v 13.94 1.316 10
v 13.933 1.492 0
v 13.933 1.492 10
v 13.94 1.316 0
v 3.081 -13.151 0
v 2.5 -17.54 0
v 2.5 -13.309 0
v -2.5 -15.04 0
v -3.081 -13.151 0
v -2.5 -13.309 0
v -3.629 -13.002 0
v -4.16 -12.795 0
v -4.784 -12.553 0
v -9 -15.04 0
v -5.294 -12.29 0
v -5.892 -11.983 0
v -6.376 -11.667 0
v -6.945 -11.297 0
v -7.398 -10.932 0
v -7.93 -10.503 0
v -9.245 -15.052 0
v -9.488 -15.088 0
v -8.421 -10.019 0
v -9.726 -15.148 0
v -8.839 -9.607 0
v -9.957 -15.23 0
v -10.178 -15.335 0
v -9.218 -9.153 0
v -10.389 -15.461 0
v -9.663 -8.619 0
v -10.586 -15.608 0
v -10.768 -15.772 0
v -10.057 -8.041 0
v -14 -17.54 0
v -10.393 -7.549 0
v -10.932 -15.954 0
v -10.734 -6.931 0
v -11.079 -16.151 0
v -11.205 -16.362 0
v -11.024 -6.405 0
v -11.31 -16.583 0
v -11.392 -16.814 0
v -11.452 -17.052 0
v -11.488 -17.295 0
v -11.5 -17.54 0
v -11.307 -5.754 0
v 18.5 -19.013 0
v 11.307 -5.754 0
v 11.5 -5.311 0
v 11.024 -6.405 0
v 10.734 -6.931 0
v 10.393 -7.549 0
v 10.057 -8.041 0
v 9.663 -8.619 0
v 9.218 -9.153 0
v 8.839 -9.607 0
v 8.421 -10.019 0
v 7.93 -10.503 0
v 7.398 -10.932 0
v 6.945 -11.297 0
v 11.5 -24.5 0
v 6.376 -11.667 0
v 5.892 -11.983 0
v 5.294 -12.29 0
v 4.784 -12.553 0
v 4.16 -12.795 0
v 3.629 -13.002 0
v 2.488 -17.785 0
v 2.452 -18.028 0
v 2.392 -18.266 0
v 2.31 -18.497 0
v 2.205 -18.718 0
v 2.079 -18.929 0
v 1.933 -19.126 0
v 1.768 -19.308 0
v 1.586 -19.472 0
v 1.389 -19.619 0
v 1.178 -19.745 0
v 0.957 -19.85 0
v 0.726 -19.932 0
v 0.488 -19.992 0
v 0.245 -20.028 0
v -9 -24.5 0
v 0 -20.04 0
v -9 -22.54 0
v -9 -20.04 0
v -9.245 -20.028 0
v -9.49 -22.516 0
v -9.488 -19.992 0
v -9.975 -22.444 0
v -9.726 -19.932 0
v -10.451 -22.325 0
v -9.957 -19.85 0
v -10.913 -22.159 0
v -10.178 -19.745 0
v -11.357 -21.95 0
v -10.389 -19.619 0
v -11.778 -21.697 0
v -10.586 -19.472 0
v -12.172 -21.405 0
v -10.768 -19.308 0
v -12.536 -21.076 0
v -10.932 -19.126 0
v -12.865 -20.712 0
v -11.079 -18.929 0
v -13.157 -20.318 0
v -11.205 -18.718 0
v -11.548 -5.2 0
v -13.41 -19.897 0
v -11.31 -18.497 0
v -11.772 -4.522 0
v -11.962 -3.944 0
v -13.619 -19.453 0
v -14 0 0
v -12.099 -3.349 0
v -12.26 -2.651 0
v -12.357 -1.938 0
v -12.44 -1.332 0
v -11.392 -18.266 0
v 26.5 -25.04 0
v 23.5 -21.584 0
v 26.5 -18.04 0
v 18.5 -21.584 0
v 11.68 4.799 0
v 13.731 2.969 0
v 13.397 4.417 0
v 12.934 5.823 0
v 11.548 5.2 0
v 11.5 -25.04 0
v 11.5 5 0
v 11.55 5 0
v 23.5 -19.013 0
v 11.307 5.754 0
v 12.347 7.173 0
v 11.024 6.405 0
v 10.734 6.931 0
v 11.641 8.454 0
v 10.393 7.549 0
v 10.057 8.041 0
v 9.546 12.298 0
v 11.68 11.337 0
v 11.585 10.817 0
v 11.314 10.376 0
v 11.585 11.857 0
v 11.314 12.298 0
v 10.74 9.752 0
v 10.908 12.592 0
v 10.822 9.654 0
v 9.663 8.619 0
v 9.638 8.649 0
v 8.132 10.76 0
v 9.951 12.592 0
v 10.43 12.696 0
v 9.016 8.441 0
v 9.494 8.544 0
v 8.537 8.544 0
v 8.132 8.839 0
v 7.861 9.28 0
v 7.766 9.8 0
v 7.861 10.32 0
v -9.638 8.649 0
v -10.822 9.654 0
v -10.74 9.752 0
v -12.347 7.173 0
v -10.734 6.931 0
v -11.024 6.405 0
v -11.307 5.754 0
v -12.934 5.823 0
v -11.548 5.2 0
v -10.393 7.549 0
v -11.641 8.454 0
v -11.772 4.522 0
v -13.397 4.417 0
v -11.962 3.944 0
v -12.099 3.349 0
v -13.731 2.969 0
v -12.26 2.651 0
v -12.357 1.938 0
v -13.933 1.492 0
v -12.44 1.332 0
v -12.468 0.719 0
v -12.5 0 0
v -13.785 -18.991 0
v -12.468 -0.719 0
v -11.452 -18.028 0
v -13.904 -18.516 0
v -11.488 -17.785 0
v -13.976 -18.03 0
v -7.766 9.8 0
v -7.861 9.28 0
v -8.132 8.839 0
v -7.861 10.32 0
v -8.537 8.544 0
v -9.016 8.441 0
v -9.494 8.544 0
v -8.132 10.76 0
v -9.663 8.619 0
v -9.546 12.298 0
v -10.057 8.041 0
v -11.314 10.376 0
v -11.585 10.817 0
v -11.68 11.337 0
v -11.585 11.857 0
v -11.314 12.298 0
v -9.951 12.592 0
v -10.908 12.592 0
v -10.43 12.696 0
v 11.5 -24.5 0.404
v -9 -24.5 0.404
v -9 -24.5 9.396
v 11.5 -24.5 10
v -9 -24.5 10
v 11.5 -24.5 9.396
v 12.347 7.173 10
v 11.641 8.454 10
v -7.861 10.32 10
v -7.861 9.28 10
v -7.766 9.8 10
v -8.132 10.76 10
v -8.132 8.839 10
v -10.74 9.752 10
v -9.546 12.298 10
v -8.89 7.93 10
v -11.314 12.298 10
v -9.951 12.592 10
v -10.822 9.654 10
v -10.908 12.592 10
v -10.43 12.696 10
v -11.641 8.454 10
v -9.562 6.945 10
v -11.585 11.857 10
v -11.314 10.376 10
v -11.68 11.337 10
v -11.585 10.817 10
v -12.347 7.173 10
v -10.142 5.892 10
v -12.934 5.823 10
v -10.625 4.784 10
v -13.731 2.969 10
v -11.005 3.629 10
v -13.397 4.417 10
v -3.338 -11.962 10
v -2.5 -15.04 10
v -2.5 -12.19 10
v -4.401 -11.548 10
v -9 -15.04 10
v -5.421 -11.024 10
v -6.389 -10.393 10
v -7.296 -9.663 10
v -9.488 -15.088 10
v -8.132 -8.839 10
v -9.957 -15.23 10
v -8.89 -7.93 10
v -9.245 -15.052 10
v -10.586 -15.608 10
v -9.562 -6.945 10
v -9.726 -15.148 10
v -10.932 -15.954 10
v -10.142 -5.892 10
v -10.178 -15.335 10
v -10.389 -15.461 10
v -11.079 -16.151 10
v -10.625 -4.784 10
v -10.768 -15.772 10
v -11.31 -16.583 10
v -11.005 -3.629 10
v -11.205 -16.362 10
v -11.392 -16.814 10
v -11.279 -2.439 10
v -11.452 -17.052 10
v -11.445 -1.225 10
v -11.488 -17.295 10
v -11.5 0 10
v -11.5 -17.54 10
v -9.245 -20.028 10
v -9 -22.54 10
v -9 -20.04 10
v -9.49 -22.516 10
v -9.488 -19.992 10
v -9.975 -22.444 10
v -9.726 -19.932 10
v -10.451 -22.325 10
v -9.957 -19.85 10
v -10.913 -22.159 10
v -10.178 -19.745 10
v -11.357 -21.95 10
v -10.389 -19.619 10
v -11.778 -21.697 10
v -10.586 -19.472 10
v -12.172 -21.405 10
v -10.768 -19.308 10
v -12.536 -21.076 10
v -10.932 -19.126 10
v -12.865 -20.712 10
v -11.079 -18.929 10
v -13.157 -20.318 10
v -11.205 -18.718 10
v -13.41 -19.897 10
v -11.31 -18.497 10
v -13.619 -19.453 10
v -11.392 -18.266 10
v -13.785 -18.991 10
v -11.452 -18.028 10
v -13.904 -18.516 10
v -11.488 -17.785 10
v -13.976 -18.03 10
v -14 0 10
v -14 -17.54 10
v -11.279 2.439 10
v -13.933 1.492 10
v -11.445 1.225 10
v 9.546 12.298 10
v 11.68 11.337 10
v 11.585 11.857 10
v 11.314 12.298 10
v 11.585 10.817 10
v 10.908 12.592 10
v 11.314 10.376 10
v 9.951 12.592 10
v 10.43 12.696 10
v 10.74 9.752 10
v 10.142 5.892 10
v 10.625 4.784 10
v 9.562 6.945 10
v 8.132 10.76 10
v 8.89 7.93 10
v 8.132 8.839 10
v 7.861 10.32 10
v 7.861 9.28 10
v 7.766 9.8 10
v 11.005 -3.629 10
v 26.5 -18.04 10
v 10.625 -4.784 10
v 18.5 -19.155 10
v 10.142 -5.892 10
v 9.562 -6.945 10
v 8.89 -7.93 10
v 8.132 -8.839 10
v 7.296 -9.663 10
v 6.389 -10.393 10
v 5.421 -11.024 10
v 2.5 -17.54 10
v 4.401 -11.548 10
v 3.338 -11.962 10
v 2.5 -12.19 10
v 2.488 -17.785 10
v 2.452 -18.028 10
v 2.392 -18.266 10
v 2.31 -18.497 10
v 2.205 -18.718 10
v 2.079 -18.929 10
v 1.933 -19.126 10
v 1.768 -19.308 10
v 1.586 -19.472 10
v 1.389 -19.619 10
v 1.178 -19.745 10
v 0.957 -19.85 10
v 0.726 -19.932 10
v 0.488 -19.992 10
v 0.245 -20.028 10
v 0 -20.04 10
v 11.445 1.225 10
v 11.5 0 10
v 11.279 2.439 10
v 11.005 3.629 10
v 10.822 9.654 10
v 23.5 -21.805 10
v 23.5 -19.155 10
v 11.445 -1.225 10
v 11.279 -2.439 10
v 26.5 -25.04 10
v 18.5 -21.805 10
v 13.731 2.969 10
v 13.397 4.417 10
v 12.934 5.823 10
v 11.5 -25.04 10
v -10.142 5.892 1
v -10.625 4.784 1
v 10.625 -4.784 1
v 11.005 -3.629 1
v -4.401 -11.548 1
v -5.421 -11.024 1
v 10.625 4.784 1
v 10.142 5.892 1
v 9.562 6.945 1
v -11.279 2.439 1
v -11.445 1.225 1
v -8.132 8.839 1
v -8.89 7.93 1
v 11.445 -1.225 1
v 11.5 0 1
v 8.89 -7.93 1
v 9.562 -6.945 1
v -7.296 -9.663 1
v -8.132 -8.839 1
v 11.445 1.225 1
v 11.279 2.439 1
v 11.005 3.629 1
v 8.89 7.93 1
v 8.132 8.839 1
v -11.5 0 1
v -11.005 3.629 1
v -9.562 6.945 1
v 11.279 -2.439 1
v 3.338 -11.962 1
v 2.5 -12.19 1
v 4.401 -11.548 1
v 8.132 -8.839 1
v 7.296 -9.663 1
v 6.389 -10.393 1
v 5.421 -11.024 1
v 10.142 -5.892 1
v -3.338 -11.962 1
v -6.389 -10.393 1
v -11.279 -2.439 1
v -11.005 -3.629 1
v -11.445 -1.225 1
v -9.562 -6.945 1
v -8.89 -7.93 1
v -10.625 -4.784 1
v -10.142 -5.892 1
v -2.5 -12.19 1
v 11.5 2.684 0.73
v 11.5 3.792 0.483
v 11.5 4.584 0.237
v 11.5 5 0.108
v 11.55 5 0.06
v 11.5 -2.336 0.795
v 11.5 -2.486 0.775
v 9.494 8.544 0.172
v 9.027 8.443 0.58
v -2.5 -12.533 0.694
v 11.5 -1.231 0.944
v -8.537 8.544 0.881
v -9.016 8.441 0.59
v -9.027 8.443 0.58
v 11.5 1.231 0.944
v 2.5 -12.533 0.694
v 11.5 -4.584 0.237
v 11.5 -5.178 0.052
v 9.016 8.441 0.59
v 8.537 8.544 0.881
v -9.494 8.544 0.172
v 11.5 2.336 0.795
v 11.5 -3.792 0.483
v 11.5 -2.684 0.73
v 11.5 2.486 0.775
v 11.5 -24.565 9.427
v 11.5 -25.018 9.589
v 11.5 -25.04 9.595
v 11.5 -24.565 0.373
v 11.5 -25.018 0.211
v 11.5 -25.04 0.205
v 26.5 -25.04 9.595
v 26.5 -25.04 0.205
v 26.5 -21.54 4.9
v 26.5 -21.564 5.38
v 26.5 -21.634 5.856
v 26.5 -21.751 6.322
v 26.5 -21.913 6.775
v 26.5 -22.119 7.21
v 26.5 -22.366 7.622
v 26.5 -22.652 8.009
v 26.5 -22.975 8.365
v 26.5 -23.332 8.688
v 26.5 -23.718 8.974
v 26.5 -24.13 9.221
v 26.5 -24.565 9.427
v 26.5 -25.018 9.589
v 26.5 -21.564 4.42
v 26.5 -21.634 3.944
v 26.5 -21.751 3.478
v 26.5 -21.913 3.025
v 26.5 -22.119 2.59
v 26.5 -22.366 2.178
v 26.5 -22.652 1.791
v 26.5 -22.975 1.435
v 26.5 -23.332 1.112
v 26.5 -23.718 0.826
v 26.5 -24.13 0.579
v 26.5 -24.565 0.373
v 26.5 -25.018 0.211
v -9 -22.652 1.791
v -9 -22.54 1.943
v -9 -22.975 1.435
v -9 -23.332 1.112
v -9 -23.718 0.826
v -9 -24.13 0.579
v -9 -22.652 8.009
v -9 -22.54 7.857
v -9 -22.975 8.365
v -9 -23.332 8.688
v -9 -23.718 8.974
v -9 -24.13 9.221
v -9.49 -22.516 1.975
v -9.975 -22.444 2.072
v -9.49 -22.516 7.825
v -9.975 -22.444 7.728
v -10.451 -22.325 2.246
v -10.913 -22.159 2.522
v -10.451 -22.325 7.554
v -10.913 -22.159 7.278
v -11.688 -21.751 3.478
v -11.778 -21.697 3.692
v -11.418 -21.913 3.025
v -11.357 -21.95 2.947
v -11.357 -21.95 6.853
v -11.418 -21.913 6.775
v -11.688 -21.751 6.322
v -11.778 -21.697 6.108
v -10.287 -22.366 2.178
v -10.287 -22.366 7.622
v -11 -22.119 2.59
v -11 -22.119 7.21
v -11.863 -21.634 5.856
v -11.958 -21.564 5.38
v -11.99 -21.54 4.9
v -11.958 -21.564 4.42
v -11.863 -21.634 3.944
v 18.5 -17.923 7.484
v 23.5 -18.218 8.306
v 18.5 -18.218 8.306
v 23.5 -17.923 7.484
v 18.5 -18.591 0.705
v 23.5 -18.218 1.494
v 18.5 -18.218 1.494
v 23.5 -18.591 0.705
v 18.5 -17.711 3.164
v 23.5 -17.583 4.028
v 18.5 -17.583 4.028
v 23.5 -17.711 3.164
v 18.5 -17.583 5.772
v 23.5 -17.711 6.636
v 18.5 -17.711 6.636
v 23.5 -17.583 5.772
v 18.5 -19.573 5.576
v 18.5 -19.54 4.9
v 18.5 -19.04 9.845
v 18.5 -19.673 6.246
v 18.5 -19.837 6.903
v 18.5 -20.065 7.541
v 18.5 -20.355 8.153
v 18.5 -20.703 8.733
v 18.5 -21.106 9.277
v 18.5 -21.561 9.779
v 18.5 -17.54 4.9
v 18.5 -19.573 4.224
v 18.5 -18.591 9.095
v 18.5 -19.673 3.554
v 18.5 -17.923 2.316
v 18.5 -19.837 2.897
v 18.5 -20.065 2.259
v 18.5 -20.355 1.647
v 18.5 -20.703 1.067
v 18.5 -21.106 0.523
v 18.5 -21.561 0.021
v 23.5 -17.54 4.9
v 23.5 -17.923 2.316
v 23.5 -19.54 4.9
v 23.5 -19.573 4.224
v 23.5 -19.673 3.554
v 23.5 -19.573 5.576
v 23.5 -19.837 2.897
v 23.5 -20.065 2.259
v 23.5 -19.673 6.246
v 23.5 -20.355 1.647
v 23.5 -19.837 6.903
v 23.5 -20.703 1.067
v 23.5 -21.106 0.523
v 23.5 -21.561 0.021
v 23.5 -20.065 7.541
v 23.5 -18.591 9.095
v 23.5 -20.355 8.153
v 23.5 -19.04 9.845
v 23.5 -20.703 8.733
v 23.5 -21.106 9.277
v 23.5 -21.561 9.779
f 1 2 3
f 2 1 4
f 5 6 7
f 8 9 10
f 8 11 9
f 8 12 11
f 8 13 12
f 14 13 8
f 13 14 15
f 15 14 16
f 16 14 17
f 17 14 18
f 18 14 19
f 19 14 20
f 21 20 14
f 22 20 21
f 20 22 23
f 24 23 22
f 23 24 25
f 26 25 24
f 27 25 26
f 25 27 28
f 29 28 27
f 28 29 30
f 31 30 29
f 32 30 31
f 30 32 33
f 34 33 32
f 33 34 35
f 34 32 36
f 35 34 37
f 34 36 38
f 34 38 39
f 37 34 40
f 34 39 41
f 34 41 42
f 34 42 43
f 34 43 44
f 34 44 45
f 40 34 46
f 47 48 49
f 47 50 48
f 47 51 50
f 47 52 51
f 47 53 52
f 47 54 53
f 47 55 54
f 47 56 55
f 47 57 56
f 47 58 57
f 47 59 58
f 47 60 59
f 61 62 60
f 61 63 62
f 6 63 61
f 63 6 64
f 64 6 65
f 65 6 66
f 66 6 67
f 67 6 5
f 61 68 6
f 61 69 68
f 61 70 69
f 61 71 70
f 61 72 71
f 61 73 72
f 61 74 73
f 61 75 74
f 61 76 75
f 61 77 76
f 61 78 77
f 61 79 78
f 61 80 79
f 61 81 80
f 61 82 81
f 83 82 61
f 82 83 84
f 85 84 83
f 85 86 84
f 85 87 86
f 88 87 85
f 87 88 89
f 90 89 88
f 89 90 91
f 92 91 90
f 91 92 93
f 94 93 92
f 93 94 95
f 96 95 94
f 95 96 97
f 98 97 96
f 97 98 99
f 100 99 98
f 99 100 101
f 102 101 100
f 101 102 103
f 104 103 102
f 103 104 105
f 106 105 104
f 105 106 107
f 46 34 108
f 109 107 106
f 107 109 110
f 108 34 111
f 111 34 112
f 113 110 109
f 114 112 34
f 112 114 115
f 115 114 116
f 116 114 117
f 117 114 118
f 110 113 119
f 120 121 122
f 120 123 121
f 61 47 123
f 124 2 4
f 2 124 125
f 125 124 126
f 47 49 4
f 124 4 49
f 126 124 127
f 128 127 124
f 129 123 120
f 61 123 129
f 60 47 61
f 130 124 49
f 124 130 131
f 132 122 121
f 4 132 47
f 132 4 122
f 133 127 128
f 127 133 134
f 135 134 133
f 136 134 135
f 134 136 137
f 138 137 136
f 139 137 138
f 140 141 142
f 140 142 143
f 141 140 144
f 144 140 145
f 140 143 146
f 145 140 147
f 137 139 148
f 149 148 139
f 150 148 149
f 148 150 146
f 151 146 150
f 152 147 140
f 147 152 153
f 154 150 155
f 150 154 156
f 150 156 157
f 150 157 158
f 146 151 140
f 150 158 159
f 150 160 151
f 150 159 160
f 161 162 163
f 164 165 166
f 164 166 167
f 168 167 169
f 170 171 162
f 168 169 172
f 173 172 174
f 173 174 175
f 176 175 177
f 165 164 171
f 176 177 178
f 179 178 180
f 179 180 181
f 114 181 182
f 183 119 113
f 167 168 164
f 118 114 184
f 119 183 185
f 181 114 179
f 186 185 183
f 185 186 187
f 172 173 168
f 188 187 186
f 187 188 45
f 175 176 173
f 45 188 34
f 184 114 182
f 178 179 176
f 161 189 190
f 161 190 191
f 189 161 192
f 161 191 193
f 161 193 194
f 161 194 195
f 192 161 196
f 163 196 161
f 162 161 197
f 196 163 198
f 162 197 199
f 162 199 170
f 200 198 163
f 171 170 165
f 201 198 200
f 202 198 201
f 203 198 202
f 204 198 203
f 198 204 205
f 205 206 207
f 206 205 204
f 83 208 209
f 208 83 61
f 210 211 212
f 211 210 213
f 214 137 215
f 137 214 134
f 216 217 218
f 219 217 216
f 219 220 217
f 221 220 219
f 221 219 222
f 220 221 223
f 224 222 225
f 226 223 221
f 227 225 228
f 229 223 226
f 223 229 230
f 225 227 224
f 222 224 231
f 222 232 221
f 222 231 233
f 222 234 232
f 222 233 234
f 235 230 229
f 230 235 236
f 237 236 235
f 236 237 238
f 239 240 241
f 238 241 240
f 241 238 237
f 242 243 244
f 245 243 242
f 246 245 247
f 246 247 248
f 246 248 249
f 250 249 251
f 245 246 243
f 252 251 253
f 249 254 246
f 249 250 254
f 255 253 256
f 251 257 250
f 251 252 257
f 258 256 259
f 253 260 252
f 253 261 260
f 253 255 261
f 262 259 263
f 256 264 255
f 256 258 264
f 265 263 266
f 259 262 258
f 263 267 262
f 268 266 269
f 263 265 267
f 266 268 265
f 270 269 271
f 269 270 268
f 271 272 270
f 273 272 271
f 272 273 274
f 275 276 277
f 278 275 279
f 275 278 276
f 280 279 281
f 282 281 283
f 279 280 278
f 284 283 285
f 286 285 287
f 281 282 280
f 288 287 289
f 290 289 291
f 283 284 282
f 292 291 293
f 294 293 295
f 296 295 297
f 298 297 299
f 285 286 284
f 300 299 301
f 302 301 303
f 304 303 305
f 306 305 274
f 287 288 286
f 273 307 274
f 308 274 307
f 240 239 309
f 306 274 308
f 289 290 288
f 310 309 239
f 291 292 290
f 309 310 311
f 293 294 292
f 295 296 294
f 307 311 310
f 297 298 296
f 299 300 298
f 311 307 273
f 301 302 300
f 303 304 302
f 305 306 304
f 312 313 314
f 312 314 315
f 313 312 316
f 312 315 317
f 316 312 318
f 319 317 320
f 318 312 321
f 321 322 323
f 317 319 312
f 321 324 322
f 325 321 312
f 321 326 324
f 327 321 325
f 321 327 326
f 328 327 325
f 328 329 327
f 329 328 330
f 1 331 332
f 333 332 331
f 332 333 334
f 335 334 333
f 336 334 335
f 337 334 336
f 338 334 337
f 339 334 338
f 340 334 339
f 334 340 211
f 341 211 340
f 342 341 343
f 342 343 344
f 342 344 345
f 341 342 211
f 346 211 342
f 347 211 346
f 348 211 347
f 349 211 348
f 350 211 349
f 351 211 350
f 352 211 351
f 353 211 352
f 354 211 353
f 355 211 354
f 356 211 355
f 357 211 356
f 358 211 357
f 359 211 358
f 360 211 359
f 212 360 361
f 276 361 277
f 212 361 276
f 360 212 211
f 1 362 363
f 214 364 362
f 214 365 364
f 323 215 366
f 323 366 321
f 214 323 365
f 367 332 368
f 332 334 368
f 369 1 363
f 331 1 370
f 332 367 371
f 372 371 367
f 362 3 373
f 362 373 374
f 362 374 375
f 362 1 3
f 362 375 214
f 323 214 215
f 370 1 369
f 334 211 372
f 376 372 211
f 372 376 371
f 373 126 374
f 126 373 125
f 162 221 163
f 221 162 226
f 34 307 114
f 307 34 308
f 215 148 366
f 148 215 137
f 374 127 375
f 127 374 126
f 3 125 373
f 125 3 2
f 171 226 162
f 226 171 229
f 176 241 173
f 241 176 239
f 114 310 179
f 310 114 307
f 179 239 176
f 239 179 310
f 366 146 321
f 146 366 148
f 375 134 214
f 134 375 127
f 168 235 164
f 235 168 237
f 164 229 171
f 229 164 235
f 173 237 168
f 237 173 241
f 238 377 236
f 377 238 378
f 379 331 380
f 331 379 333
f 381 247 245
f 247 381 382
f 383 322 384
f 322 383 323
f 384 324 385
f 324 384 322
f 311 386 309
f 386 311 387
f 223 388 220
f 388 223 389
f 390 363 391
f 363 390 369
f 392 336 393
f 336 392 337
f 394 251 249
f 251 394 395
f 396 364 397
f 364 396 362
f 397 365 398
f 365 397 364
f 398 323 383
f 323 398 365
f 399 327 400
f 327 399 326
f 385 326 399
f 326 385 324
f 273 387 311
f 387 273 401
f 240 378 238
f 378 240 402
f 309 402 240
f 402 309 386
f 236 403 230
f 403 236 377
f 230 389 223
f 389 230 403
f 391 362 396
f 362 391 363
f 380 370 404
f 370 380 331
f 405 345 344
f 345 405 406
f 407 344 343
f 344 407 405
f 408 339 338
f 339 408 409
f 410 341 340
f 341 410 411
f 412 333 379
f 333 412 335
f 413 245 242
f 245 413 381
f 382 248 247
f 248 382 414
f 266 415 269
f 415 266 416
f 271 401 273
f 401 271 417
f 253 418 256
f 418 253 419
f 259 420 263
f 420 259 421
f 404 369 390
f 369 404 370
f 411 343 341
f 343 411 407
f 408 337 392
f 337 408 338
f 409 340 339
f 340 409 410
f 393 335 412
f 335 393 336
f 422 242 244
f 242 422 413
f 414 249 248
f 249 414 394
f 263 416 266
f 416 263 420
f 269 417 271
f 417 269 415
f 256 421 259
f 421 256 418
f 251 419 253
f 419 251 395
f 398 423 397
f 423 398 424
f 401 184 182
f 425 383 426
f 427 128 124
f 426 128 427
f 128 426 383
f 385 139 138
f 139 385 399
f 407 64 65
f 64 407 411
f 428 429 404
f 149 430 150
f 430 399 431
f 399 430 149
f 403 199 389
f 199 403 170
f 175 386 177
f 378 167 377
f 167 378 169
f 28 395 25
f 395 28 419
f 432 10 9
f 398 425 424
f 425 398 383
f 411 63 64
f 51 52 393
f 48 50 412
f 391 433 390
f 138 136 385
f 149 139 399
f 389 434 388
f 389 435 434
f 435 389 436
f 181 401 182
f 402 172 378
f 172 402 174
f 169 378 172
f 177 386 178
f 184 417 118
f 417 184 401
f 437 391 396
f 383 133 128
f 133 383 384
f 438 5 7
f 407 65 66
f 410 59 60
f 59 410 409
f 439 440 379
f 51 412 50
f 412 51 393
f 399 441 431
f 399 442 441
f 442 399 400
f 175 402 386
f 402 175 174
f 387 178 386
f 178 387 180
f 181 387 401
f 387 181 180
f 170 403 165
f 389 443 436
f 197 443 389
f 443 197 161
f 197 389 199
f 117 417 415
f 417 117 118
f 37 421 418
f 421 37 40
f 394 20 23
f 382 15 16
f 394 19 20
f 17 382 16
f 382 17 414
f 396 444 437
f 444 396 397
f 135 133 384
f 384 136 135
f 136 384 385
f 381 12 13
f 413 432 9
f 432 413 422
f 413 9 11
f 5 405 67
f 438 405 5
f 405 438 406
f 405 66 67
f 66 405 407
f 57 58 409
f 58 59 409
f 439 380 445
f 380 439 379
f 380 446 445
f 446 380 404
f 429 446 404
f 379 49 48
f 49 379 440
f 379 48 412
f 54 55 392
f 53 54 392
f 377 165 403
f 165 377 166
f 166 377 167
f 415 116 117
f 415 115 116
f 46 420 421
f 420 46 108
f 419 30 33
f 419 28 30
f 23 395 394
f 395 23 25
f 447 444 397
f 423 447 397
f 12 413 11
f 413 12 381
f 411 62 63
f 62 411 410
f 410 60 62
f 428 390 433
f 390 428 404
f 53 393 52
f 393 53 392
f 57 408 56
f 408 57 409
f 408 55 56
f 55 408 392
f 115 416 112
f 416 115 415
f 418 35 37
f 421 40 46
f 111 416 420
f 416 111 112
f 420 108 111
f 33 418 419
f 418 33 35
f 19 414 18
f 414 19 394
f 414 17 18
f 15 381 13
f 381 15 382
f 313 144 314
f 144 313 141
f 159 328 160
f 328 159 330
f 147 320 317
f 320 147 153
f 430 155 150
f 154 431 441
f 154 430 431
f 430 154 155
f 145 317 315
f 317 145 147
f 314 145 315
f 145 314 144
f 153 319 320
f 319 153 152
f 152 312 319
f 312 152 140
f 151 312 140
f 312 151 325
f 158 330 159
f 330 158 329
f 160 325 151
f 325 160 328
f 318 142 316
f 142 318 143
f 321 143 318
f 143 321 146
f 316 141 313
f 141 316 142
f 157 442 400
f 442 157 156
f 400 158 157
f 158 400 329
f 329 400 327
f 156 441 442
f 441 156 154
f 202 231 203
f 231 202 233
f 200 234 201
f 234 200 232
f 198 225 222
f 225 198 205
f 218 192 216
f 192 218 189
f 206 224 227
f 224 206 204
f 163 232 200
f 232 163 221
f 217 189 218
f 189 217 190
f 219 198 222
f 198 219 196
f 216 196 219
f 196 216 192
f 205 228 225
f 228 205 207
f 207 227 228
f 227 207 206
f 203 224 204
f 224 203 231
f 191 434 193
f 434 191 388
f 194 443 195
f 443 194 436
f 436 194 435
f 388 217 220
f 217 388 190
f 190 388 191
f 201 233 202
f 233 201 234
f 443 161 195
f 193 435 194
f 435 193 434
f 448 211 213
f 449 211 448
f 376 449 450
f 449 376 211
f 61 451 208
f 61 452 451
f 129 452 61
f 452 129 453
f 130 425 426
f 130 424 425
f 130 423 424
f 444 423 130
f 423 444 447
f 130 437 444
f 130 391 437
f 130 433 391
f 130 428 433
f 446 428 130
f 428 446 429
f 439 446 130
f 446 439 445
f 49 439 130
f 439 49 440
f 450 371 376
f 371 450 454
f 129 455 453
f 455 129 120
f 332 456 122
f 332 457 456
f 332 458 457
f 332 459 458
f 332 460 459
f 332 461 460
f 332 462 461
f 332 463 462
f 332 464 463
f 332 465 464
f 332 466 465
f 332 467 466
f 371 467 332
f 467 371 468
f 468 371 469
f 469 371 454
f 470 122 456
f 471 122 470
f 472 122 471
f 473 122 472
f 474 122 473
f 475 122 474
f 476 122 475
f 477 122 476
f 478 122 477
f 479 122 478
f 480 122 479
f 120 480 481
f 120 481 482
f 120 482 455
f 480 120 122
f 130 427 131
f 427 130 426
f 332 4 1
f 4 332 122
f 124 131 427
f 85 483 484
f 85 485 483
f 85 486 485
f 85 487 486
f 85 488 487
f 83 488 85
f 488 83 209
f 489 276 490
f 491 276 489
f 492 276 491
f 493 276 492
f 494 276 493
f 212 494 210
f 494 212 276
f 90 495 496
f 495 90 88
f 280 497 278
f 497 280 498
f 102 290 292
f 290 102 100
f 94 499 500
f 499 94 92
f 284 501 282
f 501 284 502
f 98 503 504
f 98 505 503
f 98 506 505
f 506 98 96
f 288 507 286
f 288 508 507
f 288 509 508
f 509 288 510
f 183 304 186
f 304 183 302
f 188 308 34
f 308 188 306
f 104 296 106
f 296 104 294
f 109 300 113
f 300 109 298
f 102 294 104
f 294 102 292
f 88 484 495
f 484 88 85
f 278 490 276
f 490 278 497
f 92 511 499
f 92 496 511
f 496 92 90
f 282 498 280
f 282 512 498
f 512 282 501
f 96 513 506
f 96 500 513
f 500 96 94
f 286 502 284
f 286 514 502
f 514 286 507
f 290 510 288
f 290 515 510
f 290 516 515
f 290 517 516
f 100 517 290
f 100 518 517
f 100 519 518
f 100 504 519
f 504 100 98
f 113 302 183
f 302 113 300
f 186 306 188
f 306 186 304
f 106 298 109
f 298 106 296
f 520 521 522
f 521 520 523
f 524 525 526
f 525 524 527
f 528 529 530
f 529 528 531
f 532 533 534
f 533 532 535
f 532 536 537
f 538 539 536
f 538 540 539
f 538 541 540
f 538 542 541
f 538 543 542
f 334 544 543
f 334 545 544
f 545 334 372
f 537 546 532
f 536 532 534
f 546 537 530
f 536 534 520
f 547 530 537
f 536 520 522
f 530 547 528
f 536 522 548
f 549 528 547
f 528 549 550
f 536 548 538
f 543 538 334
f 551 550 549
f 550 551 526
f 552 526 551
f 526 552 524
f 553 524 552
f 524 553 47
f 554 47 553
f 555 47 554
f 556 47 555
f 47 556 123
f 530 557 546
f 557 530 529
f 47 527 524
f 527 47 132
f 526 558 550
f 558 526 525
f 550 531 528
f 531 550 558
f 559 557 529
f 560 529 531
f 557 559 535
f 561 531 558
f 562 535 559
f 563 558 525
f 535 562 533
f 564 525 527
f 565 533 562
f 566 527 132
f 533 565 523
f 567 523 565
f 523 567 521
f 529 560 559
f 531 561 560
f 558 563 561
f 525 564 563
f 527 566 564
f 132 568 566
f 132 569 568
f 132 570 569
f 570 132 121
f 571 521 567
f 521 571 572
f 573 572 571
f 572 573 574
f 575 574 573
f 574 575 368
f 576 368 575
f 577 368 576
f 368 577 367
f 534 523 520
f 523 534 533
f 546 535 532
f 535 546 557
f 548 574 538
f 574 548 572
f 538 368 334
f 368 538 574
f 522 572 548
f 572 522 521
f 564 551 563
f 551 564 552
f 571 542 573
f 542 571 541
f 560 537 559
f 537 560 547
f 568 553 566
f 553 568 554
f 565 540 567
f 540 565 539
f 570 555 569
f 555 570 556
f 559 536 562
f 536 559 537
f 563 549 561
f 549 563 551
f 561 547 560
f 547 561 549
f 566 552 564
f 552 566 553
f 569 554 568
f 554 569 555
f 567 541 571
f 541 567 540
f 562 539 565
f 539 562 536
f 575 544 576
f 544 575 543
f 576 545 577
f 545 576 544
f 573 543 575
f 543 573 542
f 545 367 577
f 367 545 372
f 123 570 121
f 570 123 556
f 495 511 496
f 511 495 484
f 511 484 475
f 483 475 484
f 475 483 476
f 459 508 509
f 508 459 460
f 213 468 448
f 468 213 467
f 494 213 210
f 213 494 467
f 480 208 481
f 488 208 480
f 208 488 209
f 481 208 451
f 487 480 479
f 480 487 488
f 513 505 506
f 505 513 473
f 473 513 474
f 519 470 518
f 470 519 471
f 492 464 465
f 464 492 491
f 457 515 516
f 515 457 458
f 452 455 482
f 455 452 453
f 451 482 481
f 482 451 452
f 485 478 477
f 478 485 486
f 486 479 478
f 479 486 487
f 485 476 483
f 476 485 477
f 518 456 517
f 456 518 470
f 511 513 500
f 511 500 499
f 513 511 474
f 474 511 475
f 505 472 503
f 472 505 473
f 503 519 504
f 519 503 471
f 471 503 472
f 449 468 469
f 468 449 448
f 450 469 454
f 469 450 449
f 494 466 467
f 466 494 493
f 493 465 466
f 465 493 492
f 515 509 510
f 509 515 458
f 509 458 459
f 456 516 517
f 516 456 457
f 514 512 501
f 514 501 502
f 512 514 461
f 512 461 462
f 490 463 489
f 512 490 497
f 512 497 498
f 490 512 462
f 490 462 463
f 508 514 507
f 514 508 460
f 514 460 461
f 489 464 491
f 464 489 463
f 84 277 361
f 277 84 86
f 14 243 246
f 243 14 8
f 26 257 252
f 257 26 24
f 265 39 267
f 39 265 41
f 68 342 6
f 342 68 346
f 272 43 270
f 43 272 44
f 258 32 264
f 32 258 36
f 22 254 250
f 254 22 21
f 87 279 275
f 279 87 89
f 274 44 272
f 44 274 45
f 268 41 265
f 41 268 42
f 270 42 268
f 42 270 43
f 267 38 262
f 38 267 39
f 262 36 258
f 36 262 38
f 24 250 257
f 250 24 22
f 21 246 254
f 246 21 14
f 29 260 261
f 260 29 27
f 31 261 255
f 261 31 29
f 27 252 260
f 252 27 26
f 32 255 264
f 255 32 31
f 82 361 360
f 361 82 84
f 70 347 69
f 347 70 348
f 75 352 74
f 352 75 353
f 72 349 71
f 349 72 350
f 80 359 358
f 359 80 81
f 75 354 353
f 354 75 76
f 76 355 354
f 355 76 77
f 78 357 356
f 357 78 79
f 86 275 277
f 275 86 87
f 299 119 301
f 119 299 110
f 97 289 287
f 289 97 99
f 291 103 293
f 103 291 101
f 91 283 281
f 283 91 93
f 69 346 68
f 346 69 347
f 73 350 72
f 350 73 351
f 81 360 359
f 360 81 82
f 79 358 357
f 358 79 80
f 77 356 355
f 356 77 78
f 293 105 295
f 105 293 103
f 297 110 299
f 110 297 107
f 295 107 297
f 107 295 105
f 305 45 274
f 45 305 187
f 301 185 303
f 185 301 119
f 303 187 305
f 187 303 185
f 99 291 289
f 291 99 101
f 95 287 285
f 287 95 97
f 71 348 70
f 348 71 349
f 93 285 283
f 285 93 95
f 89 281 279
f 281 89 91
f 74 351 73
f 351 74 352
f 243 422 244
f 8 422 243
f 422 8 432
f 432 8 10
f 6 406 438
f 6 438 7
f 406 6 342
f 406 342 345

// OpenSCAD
// file: cylinder_clip.scad
use <../utilities.scad>;

module cylinder_clip(r=1,t=3,opening_angle=120,wing_length=2,wing_angle=45,flat_w=10,flat_t=3,h=10,$fn=$fn){
	union(){
		difference(){
			hull(){
				cylinder(r=r+t,$fn=$fn,h=h);
				translate([-flat_w/2,-r-flat_t,0]) cube([flat_w,0.1,h]);
			}
			cylinder(r=r,$fn=$fn,h=99999,center=true);
			cylinder(r1=r+2,r2=r,$fn=$fn,h=2,center=true);
			scale([tan(opening_angle/2),1,1]) rotate([0,0,45]) translate([0,0,-1]) cube([1,1,1]*9999);
		}
		reflect([1,0,0]) translate([sin(opening_angle/2),cos(opening_angle/2),0]*(r+t/2)) hull() repeat([sin(wing_angle),cos(wing_angle),0]*wing_length,2)
			cylinder(r=t/2,h=h,$fn=16);
			
	}
}

//cylinder_clip(r=3,t=2,flat_w=6);
union(){
	cylinder_clip(r=21,t=4.5,flat_t=10,opening_angle=100,$fn=64);
	translate([-5,-22-5-20,0]) cube([10,20,10]);
}
// file: ../standard_optomechanics/cylinder_clamp.scad
use <../utilities.scad>;
d=0.05;

//for 1 inch/25mm post clamp, an inner radius of 12.8 is good.
	
module cylinder_clamp(
	inner_r=12.8, //radius of the cylinder being clamped (ish!)
	clamp_h=11, //thicknedess of the clamp along the cylinder axis
	clamp_t=4, //thickness of the clamp radially
	flat_t=8, //how thick the bottom of the clamp is (often need to allow for the mounting bolt head here)
	flat_width=15, //width of the flat base
	mounting_bolt=4, //nominal size of mounting bolt (default is 4 for M4, 0 to disable)
	nut_trap=false,
	bevel_top=0.5, //size of 45 degree bevel on top surface
	bevel_bottom=0.8 //size of 45 degree bevel on bottom of hole
	){
	assign(
		post_r = inner_r, //poor initial choice of name!
		bolt_flat_w=10, //width of the region where the bolt is
		gap_w=3 //size of the gap that is squeezed by the bolt
	)
	difference(){
		hull(){
			cylinder(h=clamp_h,r=post_r+clamp_t,center=true,$fn=48);
			translate([0,-post_r-flat_t/2,0]) cube([flat_width,flat_t,clamp_h],center=true);
			translate([0,post_r+bolt_flat_w/2,0]) cube([12,bolt_flat_w,clamp_h],center=true);
		}
	
		cylinder(h=9999,r=post_r,center=true,$fn=48); //cylinder being clamped
		//bevels, top and bottom
		translate([0,0,-clamp_h/2]) cylinder(r1=post_r+3*bevel_bottom,r2=post_r-bevel_bottom,h=4*bevel_bottom,center=true);
		translate([0,0,clamp_h/2]) cylinder(r2=post_r+3*bevel_top,r1=post_r-bevel_top,h=4*bevel_top,center=true);
		//gap (squeezed by bolt)
		translate([0,999,0]) cube([gap_w,999*2,999],center=true); //gap
	
		//clamping bolt
		translate([gap_w/2+2,post_r+bolt_flat_w/2,0]) rotate([0,0,-90]) nut_y(4,h=999,shaft=true);
		translate([-gap_w/2-2,post_r+bolt_flat_w/2,0]) rotate([0,0,90]) cylinder_with_45deg_top(r=4,h=999,$fn=16); //counterbore for nut head
	
		if(mounting_bolt > 0){
			//mounting bolt
			translate([0,-post_r-4.5,0]) rotate([-90,0,0]){
				intersection(){
					rotate([90,0,0])
						if(nut_trap){
							nut_y(mounting_bolt,fudge=1.15,shaft=true,h=999);
						}else{
							screw_y(mounting_bolt,fudge=1.07,shaft=true,h=999);
						}
					cube([inner_r*2,inner_r*2,clamp_h*2],center=true);
				}
			}
		}
		//in the case of thick clamps with thin flats, this keeps the bottom flat
		translate([0,-inner_r-flat_t-999,0]) cube([9999,999*2,9999],center=true);
	}
}

module cylinder_clamp_v(
	inner_r=12.8, //radius of the cylinder being clamped (ish!)
	clamp_h=10, //width of the clamp along the cylinder (y) axis
	clamp_t=4, //thickness of the clamp radially
	flat_t=8, //how thick the bottom of the clamp is (often need to allow for the mounting bolt head here)
	flat_width=15, //width of the flat base
	mounting_bolt=4, //nominal size of mounting bolt (default is 4 for M4, 0 to disable)
	bevel=0.5 //put a 45 degree bevel on the edges of the hole
	){
	assign(
		post_r = inner_r, //poor initial choice of name!
		bolt_flat_w=11, //width of the region where the bolt is
		gap_w=2*inner_r*sin(45/2),//sin(acos(1-(9/2-4/2*1.22)/inner_r))*inner_r //size of the gap that is squeezed by the bolt
		bolt_z = inner_r+4/2*1.22+d //position of bolt (so bolt just clears the cylinder we're clamping
	)assign( //the second assign statement allows us to use gap_w
		bolt_span=gap_w+4+d//max(2*inner_r*sin(acos(1-(9/2-4/2*1.22)/inner_r)), gap_w+4)
	)
	difference(){
		hull(){
			rotate([90,0,0]) cylinder(h=clamp_h,r=inner_r+clamp_t,center=true,$fn=48);
			translate([0,0,-inner_r-flat_t/2]) cube([flat_width,clamp_h,flat_t],center=true);
			translate([0,0,bolt_z]) cube([gap_w+9,clamp_h,bolt_flat_w],center=true);
		}
	
		cylinder_with_45deg_top(h=9999,r=post_r,center=true,$fn=48); //cylinder being clamped
		reflect([0,1,0]) translate([0,clamp_h/2,0]) rotate([90,0,0]) cylinder(r1=post_r+3*bevel,r2=post_r-bevel,h=4*bevel,center=true); //bevel
		translate([0,0,999]) cube([gap_w,999,999*2],center=true); //gap
	
		//clamping bolt
		translate([bolt_span/2,0,bolt_z]) rotate([0,0,-90]) nut_y(4,h=999,shaft=true);
		translate([-bolt_span/2,0,bolt_z]) rotate([0,0,90]) cylinder_with_45deg_top(r=4,h=999,$fn=16); //counterbore for nut head
	
		if(mounting_bolt > 0){
			//mounting bolt
			translate([0,0,-post_r-4.5]){
				cylinder(r=mounting_bolt*1.1,h=post_r,$fn=16);
				cylinder(r=mounting_bolt/2*1.22,h=flat_t*2,center=true,$fn=16);
			}
		}
		translate([0,0,-inner_r-flat_t-999]) cube([9999,9999,999*2],center=true);
	}
}

translate([0,30,0]) cylinder_clamp_v(30.5/2, 10, flat_width=24, mounting_bolt=4, flat_t=8);

cylinder_clamp(30.5/2, flat_width=24, mounting_bolt=4, flat_t=8,nut_trap=true);
// main file
use <../utilities.scad>;
use <../standard_optomechanics/cylinder_clamp.scad>;
use <./cylinder_clip.scad>;

rack_r = 10/2+0.3;
lock_r = 23/2;
h=10;
lock_pos = [13,30,-h/2];
d=0.05;

module annulus(inner_r,thickness,h){
	difference(){
		cylinder(r=inner_r+thickness,h=h);
		cylinder(r=inner_r,h=99999,center=true);
	}
}
module cable_tie(inner_r){
	annulus(inner_r+2,2,5);
}


union(){
    {
        $fn=64;
        rack_r = 10/2-0.1;
        t=2.5;
        standoff = lock_pos[0]*23/25 - lock_r*2/25;
        cr = 2.5;

        difference(){
            union(){
                scale([1,25/23,1]) cylinder_clip(r=lock_r,t=t,flat_t=standoff,flat_w=2*lock_r+2*t,h=h,opening_angle=90);
                translate([lock_r,-lock_r-standoff-t,0]) hull(){
                    cube([15,7,h]);
                    cube([d,lock_r+standoff+3*t,h]);
                }
            }
  
//            reflect([1,0,0]) 
            translate([(-lock_r+cr),-lock_r-standoff+t+cr,-1]) difference(){
                mirror([1,0,0]) mirror([0,1,0]) cube([999,999,999]);
                cylinder(r=t+cr,h=999,center=true);
            }
            
            translate([-lock_r+cr,-lock_r-standoff+t+cr,0]) hull() repeat([lock_r-cr,0,0],2) cylinder(r=cr,h=999,center=true);
            translate([-2.5,-lock_r-standoff+2*t,-1]) cube([5,9999,9999]);
            
            translate([0,-standoff-rack_r-lock_r+1,rack_r]) rotate([0,90,0]){
                cylinder(r=rack_r,h=999,center=true);
                translate([0,0,7+lock_r]) cable_tie(rack_r);
            }
        }
    }
}
